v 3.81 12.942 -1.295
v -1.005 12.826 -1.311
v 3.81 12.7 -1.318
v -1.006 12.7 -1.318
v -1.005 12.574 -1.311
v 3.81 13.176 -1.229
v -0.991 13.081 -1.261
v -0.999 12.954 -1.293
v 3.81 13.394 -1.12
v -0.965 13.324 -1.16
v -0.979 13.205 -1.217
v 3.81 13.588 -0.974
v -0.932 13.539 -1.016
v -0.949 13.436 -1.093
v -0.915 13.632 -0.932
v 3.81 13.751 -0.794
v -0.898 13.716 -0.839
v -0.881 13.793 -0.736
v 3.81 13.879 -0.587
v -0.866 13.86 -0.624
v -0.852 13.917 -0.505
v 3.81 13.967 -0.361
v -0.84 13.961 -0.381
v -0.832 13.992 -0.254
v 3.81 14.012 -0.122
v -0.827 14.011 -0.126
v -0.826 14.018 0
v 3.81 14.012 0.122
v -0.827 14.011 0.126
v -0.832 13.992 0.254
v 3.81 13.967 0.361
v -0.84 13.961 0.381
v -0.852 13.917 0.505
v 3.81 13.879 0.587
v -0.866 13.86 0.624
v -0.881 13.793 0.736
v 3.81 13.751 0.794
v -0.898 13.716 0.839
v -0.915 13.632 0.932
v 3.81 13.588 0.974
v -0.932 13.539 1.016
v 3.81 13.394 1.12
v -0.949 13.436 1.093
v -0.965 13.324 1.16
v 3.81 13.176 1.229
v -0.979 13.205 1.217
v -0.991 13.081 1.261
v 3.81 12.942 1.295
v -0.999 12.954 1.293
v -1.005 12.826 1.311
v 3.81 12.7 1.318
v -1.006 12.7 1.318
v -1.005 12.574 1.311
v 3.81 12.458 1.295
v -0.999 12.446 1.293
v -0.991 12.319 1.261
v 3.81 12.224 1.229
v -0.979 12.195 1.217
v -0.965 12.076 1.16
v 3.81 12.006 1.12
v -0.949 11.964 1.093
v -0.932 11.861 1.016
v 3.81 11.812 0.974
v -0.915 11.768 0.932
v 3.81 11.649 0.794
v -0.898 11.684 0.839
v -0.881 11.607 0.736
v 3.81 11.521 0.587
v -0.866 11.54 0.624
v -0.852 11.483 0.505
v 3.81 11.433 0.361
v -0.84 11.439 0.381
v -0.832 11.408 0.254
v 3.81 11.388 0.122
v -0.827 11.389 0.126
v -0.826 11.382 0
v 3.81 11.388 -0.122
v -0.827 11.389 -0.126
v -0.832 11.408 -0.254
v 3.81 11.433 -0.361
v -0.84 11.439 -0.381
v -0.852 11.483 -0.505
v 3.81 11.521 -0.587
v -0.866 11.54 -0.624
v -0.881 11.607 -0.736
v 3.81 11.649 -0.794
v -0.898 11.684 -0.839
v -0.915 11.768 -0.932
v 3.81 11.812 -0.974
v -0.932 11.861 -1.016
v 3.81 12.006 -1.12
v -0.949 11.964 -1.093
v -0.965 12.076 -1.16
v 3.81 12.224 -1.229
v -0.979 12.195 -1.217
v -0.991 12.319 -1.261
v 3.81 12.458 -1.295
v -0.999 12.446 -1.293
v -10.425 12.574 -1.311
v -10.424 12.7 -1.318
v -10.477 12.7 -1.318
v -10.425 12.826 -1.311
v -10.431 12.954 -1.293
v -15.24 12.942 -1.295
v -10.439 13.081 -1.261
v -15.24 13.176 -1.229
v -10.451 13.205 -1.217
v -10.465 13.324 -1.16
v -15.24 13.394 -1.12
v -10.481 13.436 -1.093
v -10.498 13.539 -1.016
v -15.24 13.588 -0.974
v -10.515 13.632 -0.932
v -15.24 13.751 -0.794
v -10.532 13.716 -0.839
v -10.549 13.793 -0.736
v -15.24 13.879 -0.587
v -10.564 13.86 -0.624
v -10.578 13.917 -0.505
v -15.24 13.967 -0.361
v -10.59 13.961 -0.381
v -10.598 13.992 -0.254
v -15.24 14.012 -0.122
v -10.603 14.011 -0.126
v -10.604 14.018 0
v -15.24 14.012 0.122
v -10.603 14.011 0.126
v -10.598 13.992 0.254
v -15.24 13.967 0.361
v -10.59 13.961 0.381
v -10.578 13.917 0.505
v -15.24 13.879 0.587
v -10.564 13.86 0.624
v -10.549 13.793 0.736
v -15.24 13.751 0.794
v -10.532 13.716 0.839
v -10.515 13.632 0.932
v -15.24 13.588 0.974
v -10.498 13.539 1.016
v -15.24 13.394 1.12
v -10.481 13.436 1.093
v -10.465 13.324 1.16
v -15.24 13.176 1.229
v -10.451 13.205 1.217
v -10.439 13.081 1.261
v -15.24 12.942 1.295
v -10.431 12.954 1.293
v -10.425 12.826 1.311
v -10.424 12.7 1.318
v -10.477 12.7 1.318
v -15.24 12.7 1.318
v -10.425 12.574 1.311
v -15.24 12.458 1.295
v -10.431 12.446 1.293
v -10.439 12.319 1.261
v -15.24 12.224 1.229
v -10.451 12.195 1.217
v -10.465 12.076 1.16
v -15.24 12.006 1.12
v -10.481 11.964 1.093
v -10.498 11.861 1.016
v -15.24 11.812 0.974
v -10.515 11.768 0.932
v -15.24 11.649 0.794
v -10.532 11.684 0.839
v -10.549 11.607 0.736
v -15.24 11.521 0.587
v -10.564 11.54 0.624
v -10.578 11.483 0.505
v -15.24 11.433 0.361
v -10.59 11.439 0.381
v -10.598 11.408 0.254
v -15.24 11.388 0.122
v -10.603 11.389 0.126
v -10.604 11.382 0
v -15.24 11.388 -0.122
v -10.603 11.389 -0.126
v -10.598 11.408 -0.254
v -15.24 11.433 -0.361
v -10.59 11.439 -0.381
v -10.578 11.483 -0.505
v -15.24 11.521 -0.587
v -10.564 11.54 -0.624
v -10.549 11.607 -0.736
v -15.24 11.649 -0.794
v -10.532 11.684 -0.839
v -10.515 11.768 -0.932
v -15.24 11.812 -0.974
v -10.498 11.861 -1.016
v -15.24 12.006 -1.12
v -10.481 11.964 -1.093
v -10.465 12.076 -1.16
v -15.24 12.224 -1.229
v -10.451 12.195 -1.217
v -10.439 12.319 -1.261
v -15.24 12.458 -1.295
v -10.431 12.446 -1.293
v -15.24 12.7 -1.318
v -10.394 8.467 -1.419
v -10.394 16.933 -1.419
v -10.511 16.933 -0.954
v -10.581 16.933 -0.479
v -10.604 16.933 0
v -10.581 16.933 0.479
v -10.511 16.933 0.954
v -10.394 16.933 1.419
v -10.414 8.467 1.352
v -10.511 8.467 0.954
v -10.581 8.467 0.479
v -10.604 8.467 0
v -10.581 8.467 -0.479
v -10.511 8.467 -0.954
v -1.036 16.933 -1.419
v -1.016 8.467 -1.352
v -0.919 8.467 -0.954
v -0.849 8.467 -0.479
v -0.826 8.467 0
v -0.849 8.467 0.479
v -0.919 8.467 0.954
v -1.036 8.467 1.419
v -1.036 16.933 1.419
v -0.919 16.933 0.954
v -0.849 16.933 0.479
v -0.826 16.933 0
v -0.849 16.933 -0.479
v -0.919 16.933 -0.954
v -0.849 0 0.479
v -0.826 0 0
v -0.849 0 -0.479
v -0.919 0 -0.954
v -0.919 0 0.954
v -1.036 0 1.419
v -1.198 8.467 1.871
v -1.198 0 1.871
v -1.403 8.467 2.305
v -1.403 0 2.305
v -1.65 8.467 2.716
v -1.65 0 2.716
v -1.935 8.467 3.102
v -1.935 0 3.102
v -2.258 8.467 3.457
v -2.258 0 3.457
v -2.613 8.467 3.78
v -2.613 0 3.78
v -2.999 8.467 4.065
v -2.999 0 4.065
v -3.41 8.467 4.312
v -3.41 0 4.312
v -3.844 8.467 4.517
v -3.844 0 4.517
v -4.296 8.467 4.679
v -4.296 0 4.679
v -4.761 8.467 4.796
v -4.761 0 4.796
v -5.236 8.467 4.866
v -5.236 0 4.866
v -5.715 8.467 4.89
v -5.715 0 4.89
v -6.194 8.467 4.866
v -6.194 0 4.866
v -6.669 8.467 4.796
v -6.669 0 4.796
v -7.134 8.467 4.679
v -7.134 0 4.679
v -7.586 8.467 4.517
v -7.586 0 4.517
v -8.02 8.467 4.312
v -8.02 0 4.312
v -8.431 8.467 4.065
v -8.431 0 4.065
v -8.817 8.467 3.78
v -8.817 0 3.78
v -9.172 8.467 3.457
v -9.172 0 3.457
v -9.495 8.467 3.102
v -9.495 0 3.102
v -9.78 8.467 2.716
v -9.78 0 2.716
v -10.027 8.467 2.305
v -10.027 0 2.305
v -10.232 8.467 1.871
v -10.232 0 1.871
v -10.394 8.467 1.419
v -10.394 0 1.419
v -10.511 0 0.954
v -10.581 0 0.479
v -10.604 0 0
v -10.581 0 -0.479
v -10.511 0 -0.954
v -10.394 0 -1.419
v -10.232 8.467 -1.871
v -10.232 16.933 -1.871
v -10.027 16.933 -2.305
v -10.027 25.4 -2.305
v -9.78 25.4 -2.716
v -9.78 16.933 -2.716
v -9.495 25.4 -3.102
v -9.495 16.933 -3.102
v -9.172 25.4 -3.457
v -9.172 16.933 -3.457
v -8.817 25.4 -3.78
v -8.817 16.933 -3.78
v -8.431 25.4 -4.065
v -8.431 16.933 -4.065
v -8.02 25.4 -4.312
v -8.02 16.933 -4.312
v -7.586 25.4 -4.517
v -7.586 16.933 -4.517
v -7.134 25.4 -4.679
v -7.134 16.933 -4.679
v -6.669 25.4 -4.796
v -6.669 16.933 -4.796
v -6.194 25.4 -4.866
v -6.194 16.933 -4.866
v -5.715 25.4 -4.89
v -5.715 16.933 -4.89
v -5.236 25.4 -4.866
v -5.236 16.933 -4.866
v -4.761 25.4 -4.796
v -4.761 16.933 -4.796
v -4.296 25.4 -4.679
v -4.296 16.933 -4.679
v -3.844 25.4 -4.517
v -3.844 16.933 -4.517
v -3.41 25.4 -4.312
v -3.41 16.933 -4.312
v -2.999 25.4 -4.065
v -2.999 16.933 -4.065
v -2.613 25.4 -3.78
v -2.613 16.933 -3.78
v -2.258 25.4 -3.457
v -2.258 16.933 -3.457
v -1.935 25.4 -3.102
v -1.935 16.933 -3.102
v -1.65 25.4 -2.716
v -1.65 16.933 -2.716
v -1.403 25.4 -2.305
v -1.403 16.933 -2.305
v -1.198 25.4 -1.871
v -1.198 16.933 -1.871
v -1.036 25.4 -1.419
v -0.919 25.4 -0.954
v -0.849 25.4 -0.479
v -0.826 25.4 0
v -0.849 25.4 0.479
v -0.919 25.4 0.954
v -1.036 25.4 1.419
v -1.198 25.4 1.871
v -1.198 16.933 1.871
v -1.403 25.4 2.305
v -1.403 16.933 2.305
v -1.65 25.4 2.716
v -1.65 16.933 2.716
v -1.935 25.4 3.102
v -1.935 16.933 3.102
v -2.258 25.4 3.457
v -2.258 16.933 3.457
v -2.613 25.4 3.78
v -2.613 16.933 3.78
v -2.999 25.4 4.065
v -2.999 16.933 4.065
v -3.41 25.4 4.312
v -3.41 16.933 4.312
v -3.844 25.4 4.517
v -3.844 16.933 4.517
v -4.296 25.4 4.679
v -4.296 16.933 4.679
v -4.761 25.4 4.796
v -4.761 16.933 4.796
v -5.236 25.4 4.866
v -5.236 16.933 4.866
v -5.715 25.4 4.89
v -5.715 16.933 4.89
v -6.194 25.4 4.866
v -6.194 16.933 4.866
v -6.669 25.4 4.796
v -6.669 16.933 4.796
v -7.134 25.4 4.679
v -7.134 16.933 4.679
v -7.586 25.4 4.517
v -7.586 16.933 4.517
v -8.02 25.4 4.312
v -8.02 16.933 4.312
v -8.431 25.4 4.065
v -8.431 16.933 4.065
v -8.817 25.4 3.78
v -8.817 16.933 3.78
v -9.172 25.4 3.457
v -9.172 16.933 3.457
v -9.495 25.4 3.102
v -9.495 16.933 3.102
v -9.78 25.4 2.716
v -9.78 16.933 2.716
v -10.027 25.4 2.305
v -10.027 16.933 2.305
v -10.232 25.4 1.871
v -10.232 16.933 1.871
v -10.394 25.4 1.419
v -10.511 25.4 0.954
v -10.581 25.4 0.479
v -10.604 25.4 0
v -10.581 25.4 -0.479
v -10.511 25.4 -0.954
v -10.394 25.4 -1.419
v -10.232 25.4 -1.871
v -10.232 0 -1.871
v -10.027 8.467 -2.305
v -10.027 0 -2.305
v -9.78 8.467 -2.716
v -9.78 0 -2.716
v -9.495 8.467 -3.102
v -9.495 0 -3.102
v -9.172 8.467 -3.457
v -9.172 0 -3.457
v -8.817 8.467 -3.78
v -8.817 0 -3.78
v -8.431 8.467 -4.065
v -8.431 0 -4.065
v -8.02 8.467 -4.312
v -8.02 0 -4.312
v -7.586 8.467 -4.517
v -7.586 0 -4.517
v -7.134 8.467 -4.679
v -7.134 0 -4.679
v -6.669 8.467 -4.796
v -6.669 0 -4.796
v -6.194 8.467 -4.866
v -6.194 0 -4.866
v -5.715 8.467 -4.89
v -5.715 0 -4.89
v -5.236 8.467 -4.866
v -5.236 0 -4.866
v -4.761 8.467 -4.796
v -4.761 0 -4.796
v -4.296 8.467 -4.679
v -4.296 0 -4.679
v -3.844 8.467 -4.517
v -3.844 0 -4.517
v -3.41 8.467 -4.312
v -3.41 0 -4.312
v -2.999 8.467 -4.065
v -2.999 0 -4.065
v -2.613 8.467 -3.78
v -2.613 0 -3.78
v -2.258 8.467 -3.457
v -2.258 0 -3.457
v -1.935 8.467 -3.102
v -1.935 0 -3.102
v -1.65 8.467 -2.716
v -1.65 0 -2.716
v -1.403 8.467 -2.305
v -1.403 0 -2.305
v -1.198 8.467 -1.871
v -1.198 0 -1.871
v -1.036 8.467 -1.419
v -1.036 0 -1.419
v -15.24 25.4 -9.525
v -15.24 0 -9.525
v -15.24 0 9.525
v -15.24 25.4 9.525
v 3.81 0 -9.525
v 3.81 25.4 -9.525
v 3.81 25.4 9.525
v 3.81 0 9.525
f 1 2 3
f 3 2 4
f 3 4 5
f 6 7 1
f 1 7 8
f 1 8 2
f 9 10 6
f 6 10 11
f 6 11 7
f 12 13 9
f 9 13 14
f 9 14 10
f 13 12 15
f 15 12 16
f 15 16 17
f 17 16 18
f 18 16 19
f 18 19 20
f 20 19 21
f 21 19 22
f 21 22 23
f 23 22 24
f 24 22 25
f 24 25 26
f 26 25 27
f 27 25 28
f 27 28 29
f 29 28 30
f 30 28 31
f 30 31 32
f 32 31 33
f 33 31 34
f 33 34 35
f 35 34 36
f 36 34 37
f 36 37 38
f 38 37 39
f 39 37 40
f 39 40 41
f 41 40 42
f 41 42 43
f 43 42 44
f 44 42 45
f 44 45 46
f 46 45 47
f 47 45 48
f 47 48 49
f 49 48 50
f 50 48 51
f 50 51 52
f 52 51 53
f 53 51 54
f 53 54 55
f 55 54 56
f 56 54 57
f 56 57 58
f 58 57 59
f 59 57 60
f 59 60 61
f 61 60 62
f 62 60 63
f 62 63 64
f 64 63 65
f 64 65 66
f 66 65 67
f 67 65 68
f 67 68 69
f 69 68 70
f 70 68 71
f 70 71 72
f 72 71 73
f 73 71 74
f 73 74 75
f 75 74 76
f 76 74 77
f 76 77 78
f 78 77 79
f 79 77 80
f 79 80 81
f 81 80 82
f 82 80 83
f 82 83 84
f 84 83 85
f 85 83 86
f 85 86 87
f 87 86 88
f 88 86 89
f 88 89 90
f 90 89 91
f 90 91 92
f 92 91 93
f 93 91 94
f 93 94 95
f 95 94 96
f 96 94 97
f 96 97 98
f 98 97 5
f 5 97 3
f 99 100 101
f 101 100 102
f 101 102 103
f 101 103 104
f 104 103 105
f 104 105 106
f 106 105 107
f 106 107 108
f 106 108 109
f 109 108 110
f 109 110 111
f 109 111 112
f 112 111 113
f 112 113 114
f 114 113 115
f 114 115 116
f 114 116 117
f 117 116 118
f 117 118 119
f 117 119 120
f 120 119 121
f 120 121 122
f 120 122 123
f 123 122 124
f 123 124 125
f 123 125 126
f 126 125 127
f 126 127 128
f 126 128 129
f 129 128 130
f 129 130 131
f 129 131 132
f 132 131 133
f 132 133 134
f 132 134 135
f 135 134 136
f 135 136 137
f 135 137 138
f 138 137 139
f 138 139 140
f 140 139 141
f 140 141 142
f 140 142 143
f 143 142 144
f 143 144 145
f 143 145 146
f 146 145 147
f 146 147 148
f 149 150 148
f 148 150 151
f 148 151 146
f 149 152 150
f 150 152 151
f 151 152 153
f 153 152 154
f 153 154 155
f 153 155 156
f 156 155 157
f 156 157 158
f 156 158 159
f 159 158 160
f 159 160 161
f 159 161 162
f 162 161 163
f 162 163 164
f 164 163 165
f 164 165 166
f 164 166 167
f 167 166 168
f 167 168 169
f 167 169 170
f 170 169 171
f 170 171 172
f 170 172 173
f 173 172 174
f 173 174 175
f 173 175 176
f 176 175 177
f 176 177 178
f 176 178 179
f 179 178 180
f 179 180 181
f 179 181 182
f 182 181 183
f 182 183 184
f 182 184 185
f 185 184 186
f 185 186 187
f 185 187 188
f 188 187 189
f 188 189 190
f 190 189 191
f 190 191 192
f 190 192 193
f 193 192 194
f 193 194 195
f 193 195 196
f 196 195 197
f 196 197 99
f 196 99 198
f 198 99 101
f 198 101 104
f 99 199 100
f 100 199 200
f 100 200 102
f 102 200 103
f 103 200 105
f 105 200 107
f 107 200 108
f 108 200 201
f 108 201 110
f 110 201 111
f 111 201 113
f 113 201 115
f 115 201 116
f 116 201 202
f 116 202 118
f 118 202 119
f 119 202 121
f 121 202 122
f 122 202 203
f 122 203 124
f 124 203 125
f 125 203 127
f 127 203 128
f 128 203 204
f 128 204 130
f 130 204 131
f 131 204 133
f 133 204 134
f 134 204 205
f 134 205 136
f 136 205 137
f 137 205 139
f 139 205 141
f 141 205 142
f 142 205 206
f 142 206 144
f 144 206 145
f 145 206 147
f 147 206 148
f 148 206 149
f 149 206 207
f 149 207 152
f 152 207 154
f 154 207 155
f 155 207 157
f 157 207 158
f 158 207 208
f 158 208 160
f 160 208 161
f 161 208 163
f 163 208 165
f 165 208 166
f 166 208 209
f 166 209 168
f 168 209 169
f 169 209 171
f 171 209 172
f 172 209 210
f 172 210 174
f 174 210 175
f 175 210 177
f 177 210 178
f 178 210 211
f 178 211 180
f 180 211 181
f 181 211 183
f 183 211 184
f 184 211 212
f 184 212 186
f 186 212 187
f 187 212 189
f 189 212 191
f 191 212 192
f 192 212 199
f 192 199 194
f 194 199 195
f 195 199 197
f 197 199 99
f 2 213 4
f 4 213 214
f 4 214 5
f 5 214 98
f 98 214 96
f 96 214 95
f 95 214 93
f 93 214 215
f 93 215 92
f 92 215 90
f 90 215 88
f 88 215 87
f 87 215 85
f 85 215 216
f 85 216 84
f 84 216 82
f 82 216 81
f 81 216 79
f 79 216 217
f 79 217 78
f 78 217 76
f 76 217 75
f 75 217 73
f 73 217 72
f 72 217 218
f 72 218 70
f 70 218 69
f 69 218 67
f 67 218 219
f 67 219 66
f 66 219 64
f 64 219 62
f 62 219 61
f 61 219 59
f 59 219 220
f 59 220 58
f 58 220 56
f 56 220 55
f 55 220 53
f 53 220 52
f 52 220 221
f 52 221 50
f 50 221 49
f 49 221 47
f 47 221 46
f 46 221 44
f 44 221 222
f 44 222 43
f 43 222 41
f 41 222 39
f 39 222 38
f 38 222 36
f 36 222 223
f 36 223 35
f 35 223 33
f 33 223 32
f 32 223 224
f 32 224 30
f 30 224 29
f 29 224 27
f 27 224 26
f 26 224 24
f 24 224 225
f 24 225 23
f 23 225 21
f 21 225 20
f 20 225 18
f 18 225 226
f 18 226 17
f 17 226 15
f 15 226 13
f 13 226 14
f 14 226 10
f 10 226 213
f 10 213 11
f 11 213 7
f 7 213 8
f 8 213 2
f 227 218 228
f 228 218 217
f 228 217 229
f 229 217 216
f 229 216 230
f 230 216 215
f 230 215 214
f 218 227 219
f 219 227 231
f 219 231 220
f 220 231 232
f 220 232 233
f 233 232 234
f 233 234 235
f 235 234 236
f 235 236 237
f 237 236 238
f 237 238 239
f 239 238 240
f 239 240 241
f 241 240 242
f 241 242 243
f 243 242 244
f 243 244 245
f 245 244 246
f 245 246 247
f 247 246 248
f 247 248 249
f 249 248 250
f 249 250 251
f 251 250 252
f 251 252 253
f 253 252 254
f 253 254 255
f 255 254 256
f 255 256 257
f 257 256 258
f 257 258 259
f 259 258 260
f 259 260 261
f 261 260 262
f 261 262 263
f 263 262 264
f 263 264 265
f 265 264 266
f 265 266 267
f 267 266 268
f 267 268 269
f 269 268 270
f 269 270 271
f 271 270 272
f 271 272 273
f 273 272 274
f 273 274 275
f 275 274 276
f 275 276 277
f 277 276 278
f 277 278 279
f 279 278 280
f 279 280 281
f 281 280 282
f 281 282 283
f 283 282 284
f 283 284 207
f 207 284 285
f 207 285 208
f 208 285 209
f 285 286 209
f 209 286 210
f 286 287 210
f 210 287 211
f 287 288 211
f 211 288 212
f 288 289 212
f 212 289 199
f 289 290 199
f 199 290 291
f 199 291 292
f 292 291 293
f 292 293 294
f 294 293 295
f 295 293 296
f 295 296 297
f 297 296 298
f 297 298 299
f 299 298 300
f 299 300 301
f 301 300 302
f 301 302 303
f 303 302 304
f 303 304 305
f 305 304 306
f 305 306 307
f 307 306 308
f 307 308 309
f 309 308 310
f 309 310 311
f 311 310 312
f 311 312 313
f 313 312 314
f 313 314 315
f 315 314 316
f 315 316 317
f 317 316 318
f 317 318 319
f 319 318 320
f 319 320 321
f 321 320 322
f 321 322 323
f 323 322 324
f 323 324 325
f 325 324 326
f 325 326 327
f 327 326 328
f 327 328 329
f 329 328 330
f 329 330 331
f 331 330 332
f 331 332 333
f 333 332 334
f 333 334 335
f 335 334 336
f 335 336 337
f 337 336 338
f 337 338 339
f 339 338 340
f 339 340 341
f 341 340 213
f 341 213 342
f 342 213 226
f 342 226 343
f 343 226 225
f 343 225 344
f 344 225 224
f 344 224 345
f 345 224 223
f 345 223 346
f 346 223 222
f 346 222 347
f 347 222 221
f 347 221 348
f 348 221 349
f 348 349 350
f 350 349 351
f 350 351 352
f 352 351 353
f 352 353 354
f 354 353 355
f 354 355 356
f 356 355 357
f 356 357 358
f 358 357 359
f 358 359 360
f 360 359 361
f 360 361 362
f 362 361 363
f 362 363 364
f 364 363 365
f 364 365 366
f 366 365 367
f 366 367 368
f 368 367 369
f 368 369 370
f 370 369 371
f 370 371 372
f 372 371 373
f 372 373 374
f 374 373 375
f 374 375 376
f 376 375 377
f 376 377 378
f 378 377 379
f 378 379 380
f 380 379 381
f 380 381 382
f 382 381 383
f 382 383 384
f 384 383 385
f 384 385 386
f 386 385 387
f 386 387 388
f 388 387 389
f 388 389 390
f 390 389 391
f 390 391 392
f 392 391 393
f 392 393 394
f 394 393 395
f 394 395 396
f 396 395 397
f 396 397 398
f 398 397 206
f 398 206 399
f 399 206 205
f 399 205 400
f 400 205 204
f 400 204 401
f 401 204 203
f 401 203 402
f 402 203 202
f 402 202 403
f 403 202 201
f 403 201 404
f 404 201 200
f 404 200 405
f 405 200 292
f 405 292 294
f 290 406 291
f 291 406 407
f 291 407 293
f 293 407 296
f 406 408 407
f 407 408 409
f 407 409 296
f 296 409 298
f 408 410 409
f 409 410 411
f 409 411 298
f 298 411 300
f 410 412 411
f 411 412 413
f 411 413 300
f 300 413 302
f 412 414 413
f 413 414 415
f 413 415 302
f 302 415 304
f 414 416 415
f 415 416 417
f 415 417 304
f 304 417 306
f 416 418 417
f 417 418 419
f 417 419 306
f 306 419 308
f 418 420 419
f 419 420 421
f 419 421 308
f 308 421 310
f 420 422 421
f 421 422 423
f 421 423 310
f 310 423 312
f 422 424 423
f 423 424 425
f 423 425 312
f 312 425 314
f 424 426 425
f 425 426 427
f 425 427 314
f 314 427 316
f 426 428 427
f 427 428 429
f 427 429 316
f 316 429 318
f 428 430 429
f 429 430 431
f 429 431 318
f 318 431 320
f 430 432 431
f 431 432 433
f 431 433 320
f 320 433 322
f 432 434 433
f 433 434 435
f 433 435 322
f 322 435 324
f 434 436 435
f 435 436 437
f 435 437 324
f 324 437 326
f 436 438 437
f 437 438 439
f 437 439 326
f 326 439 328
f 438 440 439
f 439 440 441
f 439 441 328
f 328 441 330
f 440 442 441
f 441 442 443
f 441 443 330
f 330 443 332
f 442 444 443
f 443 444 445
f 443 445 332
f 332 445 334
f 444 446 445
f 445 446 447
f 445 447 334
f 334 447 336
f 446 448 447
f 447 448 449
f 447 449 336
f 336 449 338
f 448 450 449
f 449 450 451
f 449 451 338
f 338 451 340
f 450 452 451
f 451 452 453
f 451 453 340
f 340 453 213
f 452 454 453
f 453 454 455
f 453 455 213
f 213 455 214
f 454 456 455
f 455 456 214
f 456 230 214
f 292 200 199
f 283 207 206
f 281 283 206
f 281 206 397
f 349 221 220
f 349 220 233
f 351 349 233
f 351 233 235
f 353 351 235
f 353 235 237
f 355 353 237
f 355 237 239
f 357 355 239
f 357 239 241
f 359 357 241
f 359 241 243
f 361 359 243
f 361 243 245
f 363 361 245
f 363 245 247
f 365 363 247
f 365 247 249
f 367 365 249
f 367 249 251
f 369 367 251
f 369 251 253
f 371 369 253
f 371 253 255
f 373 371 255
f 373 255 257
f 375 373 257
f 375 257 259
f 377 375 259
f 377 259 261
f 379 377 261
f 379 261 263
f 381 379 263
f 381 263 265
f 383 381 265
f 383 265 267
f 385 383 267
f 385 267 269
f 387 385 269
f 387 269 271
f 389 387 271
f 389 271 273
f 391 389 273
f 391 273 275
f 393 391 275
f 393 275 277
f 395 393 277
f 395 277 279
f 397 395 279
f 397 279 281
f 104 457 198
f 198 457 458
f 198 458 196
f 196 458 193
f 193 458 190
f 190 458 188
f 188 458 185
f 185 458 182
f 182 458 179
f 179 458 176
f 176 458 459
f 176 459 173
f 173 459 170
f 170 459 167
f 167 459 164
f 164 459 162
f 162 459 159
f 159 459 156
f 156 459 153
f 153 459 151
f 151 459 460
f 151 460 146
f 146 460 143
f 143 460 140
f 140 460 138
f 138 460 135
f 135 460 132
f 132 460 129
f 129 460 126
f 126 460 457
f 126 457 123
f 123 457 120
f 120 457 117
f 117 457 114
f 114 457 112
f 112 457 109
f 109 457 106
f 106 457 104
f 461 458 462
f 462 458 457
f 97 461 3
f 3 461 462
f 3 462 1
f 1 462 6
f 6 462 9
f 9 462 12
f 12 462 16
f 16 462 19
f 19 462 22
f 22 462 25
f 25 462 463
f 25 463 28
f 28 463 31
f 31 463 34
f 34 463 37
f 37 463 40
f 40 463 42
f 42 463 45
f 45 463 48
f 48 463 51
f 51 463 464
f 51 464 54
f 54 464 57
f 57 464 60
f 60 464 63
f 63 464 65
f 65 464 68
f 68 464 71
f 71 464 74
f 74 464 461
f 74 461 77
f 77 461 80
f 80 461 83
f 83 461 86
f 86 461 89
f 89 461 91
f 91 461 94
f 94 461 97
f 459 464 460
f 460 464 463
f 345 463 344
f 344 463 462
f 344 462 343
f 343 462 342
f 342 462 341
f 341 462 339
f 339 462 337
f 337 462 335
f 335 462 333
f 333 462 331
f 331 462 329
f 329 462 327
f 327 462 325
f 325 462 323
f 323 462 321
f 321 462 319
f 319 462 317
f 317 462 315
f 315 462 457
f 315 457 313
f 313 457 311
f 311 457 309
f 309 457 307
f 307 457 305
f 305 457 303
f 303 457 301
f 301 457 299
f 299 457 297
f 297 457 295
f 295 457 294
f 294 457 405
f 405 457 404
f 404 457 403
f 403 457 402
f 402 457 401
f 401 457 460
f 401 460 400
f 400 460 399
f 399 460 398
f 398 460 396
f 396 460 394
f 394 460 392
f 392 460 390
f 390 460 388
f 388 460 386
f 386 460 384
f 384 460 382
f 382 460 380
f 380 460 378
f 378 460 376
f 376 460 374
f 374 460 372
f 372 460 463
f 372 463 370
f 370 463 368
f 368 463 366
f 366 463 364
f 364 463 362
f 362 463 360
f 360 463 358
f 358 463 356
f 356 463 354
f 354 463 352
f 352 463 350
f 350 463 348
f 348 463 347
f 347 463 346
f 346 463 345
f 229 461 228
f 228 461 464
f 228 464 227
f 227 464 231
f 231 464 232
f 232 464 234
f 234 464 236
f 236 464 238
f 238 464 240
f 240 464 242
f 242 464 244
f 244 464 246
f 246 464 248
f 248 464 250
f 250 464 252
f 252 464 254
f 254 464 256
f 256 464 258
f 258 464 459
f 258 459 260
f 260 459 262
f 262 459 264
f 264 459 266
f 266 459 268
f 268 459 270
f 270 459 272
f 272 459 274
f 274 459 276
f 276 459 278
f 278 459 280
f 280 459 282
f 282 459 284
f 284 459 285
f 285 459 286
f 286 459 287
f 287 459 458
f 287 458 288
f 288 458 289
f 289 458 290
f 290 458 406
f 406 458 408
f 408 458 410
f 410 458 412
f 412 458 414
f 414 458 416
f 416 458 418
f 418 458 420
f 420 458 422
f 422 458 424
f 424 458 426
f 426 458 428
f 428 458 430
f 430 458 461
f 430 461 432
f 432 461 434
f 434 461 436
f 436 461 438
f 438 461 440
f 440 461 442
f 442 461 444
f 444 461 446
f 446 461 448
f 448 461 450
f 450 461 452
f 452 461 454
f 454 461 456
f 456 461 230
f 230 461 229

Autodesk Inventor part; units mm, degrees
ref_plane "YZ Plane" through (0, 0, 0) normal (1, 0, 0) x (0, 1, 0)
ref_plane "XZ Plane" through (0, 0, 0) normal (0, 1, 0) x (-1, 0, 0)
ref_plane "XY Plane" through (0, 0, 0) normal (0, 0, 1) x (1, 0, 0)
sketch "Sketch1" plane through (0, 0, 0) normal (0, 1, 0) x (-1, 0, 0)
  line L0 (15.24, 9.525) -> (-3.81, 9.525)
  line L1 (-3.81, 9.525) -> (-3.81, -9.525)
  line L2 (-3.81, -9.525) -> (15.24, -9.525)
  line L3 (15.24, -9.525) -> (15.24, 9.525)
  point P0 (0, 0)
  dimension "d0" = 19.05
  dimension "d1" = 19.05
extrude "Extrusion1" add sketch "Sketch1" along normal blind 25.4
sketch "Sketch2" plane through (0, 25.4, 0) normal (0, 1, 0) x (1, 0, 0)
  line L0 (-15.24, -9.525) -> (3.81, -9.525) projected
  line L1 (-5.715, -9.525) -> (-5.715, 9.525)
  line L2 (3.81, 9.525) -> (-15.24, 9.525) projected
  line L3 (-15.24, 9.525) -> (-15.24, -9.525) projected
  line L4 (-15.24, 0) -> (3.81, 0)
  line L5 (3.81, -9.525) -> (3.81, 9.525) projected
  point P0 (0, 0)
sketch "Sketch3" plane through (0, 25.4, 0) normal (0, 1, 0) x (1, 0, 0)
  circle A0 centre (-5.715, 0) radius 4.8895 construction
  line L0 (3.81, -9.525) -> (3.81, 9.525) construction
  line L1 (3.81, 9.525) -> (-15.24, 9.525) construction
  circle A1 centre (-5.715, 0) radius 4.8895
  point P0 (0, 0)
  dimension "d4" = 9.779
  dimension "d5" = 9.525
  dimension "d6" = 9.525
extrude "Extrusion2" cut sketch "Sketch3" against normal through all
sketch "Sketch4" plane through (3.81, 0, 9.525) normal (1, 0, 0) x (0, 0, -1)
  circle A0 centre (9.525, 12.7) radius 1.3176
  line L0 (19.05, 0) -> (19.05, 25.4) projected
  line L1 (0, 25.4) -> (19.05, 25.4) projected
  point P0 (9.525, 0)
  dimension "d9" = 2.6353
  dimension "d10" = 9.525
  dimension "d11" = 12.7
extrude "Extrusion3" cut sketch "Sketch4" against normal through all
properties part number "drill holder"
